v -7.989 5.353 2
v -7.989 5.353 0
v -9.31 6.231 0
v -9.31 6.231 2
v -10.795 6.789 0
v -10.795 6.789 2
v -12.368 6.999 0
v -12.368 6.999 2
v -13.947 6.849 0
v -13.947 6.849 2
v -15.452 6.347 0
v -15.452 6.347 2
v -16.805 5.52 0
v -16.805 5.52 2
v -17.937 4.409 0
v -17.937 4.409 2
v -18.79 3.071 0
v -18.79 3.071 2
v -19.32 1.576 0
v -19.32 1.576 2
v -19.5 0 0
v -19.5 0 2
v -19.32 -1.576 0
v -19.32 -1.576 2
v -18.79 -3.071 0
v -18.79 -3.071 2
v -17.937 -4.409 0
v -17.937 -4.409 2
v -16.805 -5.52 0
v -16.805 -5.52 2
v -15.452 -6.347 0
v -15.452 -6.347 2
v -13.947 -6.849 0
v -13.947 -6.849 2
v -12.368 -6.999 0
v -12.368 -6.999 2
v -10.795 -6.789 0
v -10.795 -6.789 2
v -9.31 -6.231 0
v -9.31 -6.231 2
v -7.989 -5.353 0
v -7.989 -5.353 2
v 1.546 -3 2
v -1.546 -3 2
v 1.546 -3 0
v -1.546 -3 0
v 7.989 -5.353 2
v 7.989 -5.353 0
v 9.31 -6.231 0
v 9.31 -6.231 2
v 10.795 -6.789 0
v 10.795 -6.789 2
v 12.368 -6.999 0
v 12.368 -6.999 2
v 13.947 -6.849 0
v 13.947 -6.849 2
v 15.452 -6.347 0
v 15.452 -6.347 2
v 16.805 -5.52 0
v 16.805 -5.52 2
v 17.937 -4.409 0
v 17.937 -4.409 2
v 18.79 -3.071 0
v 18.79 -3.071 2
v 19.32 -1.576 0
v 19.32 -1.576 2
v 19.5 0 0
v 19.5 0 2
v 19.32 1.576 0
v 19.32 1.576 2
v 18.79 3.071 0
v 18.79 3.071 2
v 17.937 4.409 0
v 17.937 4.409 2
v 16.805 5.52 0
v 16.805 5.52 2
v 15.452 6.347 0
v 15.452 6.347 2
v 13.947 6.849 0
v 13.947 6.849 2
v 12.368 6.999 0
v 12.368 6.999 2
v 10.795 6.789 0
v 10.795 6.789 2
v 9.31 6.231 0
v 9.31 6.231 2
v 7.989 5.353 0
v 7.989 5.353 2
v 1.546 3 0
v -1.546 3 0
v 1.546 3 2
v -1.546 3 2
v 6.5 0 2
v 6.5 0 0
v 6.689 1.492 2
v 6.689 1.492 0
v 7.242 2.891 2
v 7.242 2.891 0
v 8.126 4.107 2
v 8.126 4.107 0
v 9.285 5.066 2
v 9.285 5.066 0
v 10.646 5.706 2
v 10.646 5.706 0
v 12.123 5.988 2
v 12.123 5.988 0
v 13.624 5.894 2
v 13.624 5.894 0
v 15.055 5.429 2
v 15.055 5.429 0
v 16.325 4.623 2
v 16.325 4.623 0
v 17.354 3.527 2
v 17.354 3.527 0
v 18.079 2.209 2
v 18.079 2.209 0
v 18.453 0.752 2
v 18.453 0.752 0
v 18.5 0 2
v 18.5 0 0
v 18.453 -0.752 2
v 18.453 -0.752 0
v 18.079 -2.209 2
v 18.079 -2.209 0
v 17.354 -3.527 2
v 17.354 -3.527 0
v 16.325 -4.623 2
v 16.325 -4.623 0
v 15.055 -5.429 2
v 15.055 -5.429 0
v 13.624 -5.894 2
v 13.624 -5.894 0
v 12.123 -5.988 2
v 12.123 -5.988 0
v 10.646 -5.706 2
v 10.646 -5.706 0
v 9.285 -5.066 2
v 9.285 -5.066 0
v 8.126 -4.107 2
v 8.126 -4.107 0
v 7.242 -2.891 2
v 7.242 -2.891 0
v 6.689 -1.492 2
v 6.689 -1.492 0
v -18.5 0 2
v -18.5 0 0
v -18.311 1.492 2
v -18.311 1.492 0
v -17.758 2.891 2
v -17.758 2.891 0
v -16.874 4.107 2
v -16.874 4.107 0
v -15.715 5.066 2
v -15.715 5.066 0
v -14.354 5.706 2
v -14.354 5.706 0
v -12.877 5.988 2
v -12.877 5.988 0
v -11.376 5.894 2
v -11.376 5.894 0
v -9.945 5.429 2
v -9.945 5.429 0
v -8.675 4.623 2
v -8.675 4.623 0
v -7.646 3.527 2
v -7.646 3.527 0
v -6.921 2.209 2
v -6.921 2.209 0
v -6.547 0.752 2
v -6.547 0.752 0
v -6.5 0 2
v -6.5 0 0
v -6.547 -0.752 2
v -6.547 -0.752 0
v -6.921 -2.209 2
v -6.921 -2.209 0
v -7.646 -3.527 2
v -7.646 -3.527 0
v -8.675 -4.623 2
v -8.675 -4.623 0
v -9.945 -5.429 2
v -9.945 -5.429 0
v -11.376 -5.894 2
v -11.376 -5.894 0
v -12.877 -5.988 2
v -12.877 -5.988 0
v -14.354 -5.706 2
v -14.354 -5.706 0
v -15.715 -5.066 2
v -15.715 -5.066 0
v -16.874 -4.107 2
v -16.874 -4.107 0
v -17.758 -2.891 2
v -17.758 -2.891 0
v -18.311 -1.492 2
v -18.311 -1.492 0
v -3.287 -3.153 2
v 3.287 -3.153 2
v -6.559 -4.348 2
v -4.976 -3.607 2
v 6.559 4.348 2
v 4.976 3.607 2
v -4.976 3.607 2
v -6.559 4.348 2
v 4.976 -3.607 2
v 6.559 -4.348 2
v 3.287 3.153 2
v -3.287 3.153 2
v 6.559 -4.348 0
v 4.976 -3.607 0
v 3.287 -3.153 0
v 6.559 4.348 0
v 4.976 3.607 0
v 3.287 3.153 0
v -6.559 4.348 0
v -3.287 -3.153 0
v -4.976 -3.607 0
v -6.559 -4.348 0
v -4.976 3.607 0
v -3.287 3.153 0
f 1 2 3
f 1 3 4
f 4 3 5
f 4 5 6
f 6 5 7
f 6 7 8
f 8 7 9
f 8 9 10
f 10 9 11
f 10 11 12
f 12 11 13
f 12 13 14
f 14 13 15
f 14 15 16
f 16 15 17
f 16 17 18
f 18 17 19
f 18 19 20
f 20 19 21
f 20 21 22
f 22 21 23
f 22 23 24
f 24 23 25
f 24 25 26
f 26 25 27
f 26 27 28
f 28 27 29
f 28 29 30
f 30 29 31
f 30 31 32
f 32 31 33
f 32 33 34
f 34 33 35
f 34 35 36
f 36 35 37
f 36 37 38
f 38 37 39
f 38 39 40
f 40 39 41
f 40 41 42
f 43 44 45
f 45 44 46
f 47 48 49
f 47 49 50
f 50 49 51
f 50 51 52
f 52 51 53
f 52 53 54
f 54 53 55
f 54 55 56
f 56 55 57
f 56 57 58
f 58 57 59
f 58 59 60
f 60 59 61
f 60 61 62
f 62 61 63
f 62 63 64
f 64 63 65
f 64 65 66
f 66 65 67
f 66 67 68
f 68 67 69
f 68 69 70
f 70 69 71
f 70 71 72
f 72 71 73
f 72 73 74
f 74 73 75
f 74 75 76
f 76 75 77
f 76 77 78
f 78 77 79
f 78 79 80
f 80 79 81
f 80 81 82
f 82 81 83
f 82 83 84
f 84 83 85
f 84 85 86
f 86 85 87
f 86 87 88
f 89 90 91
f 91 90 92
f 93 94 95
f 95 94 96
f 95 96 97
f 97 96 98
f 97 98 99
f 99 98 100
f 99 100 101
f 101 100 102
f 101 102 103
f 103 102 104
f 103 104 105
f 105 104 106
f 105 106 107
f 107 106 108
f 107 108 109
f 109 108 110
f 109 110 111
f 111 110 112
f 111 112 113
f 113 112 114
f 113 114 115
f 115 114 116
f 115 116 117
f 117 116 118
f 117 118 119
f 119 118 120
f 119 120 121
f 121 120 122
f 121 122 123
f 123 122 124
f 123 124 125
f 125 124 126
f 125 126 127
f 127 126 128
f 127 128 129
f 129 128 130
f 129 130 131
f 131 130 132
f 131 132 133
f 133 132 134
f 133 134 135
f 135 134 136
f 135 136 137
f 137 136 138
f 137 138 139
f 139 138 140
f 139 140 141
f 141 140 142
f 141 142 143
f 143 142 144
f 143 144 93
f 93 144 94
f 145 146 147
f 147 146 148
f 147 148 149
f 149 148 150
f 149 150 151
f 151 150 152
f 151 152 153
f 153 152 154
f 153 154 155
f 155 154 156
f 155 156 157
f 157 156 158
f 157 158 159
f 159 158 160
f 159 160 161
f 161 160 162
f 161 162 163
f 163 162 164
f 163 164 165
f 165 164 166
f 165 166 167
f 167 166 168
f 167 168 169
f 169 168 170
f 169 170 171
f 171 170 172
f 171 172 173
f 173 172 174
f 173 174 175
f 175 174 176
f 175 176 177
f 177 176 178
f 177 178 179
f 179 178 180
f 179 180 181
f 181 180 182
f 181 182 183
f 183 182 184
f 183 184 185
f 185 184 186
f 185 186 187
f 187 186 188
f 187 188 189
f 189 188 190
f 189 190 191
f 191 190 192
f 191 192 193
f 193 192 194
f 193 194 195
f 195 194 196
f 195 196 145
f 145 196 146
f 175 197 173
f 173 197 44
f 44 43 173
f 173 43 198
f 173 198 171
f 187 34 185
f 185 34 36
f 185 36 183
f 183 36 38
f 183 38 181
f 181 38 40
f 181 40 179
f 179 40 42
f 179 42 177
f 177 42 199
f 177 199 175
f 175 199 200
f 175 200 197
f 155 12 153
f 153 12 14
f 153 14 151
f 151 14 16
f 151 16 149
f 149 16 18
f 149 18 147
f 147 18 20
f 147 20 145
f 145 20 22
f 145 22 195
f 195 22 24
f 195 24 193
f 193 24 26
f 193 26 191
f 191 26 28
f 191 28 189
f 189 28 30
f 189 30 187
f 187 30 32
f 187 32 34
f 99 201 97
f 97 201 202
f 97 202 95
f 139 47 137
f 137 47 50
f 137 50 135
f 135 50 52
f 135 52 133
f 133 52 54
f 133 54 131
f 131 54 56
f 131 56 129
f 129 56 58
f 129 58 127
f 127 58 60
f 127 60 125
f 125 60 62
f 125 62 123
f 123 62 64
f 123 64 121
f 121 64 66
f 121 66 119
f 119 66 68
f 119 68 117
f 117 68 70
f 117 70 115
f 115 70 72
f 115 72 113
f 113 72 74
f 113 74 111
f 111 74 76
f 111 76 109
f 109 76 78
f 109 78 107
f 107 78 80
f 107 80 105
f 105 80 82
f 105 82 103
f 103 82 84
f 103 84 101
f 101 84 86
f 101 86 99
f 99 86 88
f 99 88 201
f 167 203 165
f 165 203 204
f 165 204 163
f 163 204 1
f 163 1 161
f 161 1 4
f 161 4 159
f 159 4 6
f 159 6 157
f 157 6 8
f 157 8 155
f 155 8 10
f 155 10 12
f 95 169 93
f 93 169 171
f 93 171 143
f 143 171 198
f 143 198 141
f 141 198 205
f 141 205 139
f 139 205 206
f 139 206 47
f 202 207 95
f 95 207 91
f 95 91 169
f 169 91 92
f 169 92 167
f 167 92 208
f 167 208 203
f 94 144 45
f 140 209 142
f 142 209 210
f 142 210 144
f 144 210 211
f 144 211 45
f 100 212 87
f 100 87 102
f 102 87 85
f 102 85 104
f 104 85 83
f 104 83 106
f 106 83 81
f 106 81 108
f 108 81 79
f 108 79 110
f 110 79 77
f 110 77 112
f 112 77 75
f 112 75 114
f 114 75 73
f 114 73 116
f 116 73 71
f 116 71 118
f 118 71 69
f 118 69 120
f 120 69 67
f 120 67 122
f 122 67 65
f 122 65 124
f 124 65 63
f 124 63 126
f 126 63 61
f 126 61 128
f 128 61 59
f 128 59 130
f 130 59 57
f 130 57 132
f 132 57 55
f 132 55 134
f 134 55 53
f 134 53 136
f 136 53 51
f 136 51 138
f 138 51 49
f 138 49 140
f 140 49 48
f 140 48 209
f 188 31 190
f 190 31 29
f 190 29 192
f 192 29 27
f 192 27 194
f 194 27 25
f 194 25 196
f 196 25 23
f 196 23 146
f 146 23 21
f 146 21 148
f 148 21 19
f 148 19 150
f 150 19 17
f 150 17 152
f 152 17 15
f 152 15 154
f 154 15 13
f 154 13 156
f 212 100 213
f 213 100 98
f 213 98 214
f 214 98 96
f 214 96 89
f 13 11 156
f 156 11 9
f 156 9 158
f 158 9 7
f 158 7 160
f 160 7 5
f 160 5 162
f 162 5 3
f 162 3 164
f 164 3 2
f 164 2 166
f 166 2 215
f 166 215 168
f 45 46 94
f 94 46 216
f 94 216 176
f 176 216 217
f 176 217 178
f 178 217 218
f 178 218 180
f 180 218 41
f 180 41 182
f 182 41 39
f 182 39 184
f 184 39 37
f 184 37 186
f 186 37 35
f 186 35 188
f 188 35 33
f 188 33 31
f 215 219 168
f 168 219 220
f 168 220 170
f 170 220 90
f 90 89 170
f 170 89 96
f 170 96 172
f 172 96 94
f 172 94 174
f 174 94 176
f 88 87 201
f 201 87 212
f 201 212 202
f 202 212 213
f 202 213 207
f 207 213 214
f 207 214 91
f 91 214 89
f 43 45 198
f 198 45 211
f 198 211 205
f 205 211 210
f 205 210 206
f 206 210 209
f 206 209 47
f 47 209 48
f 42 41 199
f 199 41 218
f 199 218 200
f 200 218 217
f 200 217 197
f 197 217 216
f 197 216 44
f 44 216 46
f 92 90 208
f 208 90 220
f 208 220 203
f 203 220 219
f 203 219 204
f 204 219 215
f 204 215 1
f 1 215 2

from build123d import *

# Parameters (mm, degrees)
SKETCH1_R           = 6
BOSS_EXTRUDE1_DEPTH = 2
FILLET1_R           = 10


with BuildPart() as part:
    # Sketch1 → Boss-Extrude1 (new body)
    with BuildSketch(Plane.XY):
        with BuildLine():
            ThreePointArc((-6.17544468, 3), (-19.5, 0), (-6.17544468, -3))
            Line((-6.17544468, -3), (6.17544468, -3))
            ThreePointArc((6.17544468, -3), (19.5, 0), (6.17544468, 3))
            Line((6.17544468, 3), (-6.17544468, 3))
        make_face()
        with Locations((-12.5, 0)):
            Circle(SKETCH1_R, mode=Mode.SUBTRACT)
        with Locations((12.5, 0)):
            Circle(SKETCH1_R, mode=Mode.SUBTRACT)
    extrude(amount=BOSS_EXTRUDE1_DEPTH)

    # Fillet1
    fillet1_edges = [part.edges().sort_by_distance(p)[0] for p in [
        (-6.17544468, 3, 1),
        (6.17544468, 3, 1),
        (6.17544468, -3, 1),
        (-6.17544468, -3, 1),
    ]]
    fillet(fillet1_edges, radius=FILLET1_R)


solid = part.part
